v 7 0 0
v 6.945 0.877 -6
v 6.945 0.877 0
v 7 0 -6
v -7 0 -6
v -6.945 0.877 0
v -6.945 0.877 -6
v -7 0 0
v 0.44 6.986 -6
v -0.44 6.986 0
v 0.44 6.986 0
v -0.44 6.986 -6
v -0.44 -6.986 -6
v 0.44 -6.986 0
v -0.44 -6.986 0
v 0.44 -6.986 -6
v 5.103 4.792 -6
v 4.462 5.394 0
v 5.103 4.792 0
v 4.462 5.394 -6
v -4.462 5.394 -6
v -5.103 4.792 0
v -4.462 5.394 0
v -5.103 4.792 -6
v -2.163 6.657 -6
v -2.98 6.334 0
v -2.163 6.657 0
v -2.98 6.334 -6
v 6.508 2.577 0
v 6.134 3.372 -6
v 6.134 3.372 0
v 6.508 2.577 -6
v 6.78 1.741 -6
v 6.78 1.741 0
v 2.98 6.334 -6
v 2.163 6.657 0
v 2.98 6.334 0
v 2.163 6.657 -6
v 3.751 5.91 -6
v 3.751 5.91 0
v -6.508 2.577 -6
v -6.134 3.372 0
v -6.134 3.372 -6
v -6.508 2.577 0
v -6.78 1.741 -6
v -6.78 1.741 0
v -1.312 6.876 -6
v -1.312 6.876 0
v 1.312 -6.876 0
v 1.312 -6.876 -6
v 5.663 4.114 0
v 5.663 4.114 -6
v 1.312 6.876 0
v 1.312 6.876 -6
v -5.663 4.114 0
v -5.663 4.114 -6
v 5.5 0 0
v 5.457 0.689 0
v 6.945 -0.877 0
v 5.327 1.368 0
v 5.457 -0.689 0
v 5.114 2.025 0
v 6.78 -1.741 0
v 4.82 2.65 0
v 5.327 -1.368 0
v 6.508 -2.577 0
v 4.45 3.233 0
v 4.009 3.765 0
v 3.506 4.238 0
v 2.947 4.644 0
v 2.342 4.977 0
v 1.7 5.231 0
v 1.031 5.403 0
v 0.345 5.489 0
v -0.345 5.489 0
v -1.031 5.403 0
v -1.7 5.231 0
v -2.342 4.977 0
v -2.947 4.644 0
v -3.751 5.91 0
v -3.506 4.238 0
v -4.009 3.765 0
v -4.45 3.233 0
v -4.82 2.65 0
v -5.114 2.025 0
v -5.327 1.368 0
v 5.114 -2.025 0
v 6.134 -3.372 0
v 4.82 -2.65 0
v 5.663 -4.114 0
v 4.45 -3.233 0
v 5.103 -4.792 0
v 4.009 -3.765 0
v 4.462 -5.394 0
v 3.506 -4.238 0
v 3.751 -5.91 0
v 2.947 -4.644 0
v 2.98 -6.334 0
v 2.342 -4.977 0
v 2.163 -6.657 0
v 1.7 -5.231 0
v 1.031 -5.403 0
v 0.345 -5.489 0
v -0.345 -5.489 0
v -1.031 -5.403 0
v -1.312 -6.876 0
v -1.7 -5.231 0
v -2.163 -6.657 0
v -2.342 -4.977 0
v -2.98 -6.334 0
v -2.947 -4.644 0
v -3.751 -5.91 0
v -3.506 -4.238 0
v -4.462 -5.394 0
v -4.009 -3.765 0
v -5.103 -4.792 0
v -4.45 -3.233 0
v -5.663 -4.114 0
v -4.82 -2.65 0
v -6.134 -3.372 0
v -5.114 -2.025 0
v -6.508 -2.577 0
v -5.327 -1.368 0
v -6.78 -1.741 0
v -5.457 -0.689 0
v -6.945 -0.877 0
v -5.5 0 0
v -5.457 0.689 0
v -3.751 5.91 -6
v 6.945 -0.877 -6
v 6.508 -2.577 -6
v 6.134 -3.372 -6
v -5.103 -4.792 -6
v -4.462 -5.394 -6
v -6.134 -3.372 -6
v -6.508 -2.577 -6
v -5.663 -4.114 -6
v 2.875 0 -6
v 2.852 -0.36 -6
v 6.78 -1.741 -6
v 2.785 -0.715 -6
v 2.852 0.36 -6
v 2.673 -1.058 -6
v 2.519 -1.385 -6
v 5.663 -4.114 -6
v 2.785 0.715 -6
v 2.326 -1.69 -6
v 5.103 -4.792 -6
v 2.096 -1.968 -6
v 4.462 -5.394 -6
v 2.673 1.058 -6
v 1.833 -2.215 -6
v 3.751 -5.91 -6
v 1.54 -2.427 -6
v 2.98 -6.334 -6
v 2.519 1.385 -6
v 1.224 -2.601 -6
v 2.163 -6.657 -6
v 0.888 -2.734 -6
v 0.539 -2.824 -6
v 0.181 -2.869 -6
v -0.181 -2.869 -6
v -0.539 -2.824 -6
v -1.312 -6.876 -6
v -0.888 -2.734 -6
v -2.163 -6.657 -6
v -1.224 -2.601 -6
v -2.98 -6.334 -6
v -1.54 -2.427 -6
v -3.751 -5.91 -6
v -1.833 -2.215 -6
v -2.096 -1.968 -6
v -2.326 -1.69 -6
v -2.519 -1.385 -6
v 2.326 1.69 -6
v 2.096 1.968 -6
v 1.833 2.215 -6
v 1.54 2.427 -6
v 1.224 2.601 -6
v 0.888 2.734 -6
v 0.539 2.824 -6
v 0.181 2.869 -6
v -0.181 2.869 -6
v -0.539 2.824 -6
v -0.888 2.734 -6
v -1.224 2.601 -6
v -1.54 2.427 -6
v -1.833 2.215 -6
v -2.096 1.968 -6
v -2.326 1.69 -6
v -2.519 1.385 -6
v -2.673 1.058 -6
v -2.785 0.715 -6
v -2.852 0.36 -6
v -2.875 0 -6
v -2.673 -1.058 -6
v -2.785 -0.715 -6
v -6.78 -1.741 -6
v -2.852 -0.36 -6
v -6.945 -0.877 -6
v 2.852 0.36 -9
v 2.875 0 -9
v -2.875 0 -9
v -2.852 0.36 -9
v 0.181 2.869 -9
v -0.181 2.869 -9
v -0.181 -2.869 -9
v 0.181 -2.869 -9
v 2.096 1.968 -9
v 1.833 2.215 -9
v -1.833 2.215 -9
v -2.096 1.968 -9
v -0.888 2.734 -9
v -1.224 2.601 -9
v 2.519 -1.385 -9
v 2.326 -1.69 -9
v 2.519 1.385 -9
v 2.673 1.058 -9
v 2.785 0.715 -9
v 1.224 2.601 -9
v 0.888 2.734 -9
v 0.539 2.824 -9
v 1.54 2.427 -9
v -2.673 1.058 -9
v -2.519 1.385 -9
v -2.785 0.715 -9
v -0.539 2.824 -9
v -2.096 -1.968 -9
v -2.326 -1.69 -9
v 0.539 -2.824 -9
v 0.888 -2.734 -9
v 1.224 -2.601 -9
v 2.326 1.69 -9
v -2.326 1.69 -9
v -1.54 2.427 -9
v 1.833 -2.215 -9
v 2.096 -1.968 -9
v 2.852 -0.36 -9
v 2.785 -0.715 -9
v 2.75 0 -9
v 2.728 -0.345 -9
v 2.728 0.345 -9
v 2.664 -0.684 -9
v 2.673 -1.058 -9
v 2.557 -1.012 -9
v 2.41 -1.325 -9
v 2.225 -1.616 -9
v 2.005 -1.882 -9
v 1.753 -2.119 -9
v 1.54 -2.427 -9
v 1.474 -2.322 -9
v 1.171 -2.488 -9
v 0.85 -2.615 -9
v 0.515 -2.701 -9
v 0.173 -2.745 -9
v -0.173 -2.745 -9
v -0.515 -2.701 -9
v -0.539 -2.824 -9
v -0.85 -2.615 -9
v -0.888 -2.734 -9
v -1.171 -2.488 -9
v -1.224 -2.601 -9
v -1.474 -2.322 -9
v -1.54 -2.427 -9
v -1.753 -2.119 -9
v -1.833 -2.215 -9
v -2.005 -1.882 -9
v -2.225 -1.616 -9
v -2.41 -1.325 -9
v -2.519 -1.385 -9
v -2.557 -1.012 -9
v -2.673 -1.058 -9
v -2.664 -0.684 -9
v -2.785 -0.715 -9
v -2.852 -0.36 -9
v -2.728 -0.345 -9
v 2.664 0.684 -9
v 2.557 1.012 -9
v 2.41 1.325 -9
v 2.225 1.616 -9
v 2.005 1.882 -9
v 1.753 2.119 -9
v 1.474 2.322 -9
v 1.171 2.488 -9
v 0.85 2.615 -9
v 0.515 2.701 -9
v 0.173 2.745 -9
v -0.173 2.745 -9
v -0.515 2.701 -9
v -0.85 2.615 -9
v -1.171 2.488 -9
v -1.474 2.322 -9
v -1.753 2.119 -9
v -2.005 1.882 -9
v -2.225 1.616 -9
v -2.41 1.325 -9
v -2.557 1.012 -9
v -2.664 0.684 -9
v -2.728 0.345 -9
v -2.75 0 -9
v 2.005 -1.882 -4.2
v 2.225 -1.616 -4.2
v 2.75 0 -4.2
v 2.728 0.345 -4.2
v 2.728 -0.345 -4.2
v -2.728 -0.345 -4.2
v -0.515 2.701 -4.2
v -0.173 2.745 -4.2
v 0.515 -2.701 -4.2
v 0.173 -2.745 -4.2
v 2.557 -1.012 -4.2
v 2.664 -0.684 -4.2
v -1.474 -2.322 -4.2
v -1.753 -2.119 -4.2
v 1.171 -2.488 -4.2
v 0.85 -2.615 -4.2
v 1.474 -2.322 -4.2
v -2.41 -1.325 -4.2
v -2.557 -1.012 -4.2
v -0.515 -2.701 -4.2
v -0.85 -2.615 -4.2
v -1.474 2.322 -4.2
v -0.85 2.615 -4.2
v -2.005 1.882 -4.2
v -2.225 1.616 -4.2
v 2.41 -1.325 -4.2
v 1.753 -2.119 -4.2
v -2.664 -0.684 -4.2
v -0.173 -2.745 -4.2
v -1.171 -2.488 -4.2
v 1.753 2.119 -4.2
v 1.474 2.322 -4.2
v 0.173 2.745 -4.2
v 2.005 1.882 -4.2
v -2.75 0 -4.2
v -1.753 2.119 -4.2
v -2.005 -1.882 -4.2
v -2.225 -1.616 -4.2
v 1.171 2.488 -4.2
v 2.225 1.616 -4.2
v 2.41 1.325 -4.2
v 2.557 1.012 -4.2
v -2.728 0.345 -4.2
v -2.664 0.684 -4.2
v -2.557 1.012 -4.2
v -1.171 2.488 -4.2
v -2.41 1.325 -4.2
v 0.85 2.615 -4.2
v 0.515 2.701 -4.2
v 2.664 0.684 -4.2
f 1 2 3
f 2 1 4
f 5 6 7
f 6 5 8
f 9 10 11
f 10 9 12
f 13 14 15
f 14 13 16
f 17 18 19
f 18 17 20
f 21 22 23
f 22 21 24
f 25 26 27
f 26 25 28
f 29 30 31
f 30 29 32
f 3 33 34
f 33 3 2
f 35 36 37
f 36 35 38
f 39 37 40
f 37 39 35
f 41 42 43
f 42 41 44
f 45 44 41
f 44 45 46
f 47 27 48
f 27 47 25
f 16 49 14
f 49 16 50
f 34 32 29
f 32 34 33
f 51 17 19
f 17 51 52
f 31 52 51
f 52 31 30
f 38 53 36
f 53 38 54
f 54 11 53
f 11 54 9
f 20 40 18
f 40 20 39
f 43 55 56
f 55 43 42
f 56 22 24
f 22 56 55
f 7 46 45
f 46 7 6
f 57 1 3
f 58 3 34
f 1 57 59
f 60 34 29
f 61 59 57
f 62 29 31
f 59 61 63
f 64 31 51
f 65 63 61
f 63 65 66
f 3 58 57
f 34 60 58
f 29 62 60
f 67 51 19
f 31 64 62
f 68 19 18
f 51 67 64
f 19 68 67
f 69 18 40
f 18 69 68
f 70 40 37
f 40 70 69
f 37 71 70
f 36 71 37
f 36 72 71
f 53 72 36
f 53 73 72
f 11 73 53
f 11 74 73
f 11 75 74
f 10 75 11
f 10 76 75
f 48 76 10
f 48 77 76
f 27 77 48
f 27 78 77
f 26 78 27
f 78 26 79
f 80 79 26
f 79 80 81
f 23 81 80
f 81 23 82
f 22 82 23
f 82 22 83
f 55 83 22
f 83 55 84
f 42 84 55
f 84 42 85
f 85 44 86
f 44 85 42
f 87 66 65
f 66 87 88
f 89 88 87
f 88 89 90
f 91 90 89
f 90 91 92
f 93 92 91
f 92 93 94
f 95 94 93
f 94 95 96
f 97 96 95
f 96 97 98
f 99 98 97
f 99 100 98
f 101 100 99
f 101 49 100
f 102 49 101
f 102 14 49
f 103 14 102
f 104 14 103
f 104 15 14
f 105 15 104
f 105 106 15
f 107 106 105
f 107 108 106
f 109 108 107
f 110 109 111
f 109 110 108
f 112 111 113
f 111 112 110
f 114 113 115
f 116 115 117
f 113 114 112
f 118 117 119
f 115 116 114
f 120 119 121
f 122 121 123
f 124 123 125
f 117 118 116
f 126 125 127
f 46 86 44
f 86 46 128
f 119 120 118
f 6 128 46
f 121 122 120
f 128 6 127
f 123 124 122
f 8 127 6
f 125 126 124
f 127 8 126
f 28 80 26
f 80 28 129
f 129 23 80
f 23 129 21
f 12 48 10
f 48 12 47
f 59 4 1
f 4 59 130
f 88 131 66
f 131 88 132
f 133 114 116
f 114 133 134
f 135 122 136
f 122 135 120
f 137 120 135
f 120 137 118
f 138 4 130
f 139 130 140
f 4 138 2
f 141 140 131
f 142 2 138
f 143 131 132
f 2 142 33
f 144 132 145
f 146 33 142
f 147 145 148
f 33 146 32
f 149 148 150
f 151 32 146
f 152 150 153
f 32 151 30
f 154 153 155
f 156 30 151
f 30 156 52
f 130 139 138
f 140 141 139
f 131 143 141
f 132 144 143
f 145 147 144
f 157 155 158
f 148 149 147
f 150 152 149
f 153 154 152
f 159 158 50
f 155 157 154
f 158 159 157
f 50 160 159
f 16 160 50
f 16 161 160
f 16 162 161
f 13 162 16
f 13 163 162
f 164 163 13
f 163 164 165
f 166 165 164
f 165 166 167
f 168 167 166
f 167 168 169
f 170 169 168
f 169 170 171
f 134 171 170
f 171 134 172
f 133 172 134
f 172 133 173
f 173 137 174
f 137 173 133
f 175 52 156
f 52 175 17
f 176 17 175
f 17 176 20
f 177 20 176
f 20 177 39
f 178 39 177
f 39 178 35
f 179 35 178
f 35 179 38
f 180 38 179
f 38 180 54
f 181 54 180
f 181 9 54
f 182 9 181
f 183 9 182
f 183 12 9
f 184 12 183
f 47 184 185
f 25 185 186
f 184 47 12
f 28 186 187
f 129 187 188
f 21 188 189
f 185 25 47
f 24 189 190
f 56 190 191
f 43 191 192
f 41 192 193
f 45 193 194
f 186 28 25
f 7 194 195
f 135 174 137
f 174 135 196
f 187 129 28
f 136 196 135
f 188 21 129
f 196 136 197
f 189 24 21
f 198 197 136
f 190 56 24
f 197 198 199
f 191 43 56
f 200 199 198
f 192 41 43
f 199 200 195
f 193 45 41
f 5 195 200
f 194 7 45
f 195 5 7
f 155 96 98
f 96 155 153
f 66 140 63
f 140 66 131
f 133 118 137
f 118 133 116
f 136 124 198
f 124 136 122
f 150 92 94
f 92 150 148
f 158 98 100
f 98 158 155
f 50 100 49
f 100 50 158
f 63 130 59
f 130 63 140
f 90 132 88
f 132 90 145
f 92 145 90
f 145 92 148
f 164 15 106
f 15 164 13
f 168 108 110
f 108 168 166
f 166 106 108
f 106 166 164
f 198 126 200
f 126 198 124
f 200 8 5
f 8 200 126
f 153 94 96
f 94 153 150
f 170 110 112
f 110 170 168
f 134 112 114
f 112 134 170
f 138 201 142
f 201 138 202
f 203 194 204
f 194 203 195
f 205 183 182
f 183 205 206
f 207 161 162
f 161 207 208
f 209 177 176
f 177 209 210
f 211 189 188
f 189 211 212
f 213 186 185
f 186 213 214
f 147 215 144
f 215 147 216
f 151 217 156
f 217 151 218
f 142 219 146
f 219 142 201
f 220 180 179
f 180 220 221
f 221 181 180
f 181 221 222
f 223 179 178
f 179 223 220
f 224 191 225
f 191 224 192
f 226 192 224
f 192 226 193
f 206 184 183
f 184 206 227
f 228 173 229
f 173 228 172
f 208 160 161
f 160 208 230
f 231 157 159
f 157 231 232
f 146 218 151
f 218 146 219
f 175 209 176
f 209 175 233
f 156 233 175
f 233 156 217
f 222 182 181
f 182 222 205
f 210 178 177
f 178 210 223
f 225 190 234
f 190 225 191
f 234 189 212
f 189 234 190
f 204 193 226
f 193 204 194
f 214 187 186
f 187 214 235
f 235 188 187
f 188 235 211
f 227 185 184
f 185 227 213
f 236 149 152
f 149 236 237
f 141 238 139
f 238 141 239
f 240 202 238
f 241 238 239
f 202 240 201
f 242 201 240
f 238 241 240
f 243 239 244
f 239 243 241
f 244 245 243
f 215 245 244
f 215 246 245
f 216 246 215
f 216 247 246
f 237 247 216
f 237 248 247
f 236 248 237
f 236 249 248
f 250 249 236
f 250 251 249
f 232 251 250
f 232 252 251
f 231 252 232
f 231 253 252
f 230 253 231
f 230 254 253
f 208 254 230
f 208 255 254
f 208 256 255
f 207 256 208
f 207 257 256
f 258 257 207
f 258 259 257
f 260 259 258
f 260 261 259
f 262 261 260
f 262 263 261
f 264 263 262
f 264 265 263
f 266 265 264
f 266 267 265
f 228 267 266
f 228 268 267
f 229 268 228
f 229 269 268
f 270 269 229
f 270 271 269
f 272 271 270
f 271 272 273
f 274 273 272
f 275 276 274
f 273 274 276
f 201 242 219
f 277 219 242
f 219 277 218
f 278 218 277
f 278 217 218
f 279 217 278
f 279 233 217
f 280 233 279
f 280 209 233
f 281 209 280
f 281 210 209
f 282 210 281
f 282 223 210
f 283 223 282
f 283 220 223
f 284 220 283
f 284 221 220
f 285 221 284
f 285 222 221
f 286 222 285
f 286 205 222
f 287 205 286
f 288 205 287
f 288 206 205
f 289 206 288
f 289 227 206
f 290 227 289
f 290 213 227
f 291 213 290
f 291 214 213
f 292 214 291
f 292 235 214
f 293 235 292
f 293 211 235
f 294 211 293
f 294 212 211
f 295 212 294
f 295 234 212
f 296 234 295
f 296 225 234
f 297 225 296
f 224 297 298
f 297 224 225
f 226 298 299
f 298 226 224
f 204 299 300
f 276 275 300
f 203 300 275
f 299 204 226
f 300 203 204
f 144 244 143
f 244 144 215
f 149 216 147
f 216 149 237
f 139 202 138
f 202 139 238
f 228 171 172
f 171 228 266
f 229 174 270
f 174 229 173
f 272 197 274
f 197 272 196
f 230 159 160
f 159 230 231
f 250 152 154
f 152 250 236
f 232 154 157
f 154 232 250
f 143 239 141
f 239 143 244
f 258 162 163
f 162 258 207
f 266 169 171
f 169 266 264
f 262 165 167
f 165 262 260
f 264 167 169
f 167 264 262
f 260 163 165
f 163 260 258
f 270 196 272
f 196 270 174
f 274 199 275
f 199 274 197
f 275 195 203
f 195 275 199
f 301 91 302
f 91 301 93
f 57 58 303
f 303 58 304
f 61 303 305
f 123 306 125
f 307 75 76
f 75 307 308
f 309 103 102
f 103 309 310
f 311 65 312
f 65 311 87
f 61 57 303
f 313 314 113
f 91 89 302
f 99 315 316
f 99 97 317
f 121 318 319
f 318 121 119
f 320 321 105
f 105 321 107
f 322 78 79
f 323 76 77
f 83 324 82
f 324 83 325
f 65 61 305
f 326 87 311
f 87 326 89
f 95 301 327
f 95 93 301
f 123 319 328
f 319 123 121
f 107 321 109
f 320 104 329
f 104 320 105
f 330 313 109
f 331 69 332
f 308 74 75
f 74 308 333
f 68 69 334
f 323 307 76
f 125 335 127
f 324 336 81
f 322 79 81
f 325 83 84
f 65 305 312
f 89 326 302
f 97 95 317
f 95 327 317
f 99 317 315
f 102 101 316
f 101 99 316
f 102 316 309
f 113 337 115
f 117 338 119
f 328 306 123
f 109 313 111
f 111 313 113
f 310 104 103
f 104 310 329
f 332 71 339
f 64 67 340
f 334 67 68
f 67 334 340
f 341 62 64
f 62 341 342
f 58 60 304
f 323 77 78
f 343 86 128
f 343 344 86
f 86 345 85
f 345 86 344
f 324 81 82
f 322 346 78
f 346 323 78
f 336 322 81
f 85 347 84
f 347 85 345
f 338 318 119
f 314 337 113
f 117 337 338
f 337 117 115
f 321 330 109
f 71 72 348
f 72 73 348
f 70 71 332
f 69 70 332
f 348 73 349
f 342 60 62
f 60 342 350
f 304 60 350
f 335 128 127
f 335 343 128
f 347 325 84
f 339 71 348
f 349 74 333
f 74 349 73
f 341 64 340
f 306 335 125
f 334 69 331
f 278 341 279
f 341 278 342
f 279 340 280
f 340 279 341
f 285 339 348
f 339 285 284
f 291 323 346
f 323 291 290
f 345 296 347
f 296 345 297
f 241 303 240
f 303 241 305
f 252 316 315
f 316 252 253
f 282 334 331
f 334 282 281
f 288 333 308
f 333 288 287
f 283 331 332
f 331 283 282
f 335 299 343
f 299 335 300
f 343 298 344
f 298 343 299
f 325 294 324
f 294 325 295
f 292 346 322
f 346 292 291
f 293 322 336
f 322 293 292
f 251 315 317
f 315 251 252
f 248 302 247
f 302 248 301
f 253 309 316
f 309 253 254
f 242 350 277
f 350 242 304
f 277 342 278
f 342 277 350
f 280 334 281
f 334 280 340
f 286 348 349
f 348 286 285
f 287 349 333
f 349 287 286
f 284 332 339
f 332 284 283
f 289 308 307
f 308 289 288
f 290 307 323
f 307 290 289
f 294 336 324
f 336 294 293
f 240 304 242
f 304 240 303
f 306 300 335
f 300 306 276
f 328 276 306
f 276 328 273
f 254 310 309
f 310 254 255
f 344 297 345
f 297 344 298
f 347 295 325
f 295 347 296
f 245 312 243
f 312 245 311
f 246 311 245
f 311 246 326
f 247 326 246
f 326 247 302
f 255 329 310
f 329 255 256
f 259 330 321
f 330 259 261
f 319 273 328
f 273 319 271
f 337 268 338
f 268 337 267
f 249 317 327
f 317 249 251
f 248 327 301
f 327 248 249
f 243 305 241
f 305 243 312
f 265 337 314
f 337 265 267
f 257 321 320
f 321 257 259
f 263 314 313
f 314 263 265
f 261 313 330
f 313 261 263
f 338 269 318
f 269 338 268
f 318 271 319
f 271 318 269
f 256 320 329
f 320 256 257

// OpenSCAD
$fn = 50;


difference() {
	union() {
		translate(v = [0, 0, -6.0000000000]) {
			cylinder(h = 6, r = 7.0000000000);
		}
		translate(v = [0, 0, -9.0000000000]) {
			cylinder(h = 9, r = 2.8750000000);
		}
	}
	union() {
		translate(v = [0, 0, 0]) {
			rotate(a = [0, 0, 0]) {
				difference() {
					union() {
						translate(v = [0, 0, -9.0000000000]) {
							cylinder(h = 9, r = 2.2500000000);
						}
						translate(v = [0, 0, -4.2000000000]) {
							cylinder(h = 4.2000000000, r1 = 2.7500000000, r2 = 5.5000000000);
						}
						translate(v = [0, 0, -9.0000000000]) {
							cylinder(h = 9, r = 2.7500000000);
						}
						translate(v = [0, 0, -9.0000000000]) {
							cylinder(h = 9, r = 2.2500000000);
						}
					}
					union();
				}
			}
		}
	}
}
